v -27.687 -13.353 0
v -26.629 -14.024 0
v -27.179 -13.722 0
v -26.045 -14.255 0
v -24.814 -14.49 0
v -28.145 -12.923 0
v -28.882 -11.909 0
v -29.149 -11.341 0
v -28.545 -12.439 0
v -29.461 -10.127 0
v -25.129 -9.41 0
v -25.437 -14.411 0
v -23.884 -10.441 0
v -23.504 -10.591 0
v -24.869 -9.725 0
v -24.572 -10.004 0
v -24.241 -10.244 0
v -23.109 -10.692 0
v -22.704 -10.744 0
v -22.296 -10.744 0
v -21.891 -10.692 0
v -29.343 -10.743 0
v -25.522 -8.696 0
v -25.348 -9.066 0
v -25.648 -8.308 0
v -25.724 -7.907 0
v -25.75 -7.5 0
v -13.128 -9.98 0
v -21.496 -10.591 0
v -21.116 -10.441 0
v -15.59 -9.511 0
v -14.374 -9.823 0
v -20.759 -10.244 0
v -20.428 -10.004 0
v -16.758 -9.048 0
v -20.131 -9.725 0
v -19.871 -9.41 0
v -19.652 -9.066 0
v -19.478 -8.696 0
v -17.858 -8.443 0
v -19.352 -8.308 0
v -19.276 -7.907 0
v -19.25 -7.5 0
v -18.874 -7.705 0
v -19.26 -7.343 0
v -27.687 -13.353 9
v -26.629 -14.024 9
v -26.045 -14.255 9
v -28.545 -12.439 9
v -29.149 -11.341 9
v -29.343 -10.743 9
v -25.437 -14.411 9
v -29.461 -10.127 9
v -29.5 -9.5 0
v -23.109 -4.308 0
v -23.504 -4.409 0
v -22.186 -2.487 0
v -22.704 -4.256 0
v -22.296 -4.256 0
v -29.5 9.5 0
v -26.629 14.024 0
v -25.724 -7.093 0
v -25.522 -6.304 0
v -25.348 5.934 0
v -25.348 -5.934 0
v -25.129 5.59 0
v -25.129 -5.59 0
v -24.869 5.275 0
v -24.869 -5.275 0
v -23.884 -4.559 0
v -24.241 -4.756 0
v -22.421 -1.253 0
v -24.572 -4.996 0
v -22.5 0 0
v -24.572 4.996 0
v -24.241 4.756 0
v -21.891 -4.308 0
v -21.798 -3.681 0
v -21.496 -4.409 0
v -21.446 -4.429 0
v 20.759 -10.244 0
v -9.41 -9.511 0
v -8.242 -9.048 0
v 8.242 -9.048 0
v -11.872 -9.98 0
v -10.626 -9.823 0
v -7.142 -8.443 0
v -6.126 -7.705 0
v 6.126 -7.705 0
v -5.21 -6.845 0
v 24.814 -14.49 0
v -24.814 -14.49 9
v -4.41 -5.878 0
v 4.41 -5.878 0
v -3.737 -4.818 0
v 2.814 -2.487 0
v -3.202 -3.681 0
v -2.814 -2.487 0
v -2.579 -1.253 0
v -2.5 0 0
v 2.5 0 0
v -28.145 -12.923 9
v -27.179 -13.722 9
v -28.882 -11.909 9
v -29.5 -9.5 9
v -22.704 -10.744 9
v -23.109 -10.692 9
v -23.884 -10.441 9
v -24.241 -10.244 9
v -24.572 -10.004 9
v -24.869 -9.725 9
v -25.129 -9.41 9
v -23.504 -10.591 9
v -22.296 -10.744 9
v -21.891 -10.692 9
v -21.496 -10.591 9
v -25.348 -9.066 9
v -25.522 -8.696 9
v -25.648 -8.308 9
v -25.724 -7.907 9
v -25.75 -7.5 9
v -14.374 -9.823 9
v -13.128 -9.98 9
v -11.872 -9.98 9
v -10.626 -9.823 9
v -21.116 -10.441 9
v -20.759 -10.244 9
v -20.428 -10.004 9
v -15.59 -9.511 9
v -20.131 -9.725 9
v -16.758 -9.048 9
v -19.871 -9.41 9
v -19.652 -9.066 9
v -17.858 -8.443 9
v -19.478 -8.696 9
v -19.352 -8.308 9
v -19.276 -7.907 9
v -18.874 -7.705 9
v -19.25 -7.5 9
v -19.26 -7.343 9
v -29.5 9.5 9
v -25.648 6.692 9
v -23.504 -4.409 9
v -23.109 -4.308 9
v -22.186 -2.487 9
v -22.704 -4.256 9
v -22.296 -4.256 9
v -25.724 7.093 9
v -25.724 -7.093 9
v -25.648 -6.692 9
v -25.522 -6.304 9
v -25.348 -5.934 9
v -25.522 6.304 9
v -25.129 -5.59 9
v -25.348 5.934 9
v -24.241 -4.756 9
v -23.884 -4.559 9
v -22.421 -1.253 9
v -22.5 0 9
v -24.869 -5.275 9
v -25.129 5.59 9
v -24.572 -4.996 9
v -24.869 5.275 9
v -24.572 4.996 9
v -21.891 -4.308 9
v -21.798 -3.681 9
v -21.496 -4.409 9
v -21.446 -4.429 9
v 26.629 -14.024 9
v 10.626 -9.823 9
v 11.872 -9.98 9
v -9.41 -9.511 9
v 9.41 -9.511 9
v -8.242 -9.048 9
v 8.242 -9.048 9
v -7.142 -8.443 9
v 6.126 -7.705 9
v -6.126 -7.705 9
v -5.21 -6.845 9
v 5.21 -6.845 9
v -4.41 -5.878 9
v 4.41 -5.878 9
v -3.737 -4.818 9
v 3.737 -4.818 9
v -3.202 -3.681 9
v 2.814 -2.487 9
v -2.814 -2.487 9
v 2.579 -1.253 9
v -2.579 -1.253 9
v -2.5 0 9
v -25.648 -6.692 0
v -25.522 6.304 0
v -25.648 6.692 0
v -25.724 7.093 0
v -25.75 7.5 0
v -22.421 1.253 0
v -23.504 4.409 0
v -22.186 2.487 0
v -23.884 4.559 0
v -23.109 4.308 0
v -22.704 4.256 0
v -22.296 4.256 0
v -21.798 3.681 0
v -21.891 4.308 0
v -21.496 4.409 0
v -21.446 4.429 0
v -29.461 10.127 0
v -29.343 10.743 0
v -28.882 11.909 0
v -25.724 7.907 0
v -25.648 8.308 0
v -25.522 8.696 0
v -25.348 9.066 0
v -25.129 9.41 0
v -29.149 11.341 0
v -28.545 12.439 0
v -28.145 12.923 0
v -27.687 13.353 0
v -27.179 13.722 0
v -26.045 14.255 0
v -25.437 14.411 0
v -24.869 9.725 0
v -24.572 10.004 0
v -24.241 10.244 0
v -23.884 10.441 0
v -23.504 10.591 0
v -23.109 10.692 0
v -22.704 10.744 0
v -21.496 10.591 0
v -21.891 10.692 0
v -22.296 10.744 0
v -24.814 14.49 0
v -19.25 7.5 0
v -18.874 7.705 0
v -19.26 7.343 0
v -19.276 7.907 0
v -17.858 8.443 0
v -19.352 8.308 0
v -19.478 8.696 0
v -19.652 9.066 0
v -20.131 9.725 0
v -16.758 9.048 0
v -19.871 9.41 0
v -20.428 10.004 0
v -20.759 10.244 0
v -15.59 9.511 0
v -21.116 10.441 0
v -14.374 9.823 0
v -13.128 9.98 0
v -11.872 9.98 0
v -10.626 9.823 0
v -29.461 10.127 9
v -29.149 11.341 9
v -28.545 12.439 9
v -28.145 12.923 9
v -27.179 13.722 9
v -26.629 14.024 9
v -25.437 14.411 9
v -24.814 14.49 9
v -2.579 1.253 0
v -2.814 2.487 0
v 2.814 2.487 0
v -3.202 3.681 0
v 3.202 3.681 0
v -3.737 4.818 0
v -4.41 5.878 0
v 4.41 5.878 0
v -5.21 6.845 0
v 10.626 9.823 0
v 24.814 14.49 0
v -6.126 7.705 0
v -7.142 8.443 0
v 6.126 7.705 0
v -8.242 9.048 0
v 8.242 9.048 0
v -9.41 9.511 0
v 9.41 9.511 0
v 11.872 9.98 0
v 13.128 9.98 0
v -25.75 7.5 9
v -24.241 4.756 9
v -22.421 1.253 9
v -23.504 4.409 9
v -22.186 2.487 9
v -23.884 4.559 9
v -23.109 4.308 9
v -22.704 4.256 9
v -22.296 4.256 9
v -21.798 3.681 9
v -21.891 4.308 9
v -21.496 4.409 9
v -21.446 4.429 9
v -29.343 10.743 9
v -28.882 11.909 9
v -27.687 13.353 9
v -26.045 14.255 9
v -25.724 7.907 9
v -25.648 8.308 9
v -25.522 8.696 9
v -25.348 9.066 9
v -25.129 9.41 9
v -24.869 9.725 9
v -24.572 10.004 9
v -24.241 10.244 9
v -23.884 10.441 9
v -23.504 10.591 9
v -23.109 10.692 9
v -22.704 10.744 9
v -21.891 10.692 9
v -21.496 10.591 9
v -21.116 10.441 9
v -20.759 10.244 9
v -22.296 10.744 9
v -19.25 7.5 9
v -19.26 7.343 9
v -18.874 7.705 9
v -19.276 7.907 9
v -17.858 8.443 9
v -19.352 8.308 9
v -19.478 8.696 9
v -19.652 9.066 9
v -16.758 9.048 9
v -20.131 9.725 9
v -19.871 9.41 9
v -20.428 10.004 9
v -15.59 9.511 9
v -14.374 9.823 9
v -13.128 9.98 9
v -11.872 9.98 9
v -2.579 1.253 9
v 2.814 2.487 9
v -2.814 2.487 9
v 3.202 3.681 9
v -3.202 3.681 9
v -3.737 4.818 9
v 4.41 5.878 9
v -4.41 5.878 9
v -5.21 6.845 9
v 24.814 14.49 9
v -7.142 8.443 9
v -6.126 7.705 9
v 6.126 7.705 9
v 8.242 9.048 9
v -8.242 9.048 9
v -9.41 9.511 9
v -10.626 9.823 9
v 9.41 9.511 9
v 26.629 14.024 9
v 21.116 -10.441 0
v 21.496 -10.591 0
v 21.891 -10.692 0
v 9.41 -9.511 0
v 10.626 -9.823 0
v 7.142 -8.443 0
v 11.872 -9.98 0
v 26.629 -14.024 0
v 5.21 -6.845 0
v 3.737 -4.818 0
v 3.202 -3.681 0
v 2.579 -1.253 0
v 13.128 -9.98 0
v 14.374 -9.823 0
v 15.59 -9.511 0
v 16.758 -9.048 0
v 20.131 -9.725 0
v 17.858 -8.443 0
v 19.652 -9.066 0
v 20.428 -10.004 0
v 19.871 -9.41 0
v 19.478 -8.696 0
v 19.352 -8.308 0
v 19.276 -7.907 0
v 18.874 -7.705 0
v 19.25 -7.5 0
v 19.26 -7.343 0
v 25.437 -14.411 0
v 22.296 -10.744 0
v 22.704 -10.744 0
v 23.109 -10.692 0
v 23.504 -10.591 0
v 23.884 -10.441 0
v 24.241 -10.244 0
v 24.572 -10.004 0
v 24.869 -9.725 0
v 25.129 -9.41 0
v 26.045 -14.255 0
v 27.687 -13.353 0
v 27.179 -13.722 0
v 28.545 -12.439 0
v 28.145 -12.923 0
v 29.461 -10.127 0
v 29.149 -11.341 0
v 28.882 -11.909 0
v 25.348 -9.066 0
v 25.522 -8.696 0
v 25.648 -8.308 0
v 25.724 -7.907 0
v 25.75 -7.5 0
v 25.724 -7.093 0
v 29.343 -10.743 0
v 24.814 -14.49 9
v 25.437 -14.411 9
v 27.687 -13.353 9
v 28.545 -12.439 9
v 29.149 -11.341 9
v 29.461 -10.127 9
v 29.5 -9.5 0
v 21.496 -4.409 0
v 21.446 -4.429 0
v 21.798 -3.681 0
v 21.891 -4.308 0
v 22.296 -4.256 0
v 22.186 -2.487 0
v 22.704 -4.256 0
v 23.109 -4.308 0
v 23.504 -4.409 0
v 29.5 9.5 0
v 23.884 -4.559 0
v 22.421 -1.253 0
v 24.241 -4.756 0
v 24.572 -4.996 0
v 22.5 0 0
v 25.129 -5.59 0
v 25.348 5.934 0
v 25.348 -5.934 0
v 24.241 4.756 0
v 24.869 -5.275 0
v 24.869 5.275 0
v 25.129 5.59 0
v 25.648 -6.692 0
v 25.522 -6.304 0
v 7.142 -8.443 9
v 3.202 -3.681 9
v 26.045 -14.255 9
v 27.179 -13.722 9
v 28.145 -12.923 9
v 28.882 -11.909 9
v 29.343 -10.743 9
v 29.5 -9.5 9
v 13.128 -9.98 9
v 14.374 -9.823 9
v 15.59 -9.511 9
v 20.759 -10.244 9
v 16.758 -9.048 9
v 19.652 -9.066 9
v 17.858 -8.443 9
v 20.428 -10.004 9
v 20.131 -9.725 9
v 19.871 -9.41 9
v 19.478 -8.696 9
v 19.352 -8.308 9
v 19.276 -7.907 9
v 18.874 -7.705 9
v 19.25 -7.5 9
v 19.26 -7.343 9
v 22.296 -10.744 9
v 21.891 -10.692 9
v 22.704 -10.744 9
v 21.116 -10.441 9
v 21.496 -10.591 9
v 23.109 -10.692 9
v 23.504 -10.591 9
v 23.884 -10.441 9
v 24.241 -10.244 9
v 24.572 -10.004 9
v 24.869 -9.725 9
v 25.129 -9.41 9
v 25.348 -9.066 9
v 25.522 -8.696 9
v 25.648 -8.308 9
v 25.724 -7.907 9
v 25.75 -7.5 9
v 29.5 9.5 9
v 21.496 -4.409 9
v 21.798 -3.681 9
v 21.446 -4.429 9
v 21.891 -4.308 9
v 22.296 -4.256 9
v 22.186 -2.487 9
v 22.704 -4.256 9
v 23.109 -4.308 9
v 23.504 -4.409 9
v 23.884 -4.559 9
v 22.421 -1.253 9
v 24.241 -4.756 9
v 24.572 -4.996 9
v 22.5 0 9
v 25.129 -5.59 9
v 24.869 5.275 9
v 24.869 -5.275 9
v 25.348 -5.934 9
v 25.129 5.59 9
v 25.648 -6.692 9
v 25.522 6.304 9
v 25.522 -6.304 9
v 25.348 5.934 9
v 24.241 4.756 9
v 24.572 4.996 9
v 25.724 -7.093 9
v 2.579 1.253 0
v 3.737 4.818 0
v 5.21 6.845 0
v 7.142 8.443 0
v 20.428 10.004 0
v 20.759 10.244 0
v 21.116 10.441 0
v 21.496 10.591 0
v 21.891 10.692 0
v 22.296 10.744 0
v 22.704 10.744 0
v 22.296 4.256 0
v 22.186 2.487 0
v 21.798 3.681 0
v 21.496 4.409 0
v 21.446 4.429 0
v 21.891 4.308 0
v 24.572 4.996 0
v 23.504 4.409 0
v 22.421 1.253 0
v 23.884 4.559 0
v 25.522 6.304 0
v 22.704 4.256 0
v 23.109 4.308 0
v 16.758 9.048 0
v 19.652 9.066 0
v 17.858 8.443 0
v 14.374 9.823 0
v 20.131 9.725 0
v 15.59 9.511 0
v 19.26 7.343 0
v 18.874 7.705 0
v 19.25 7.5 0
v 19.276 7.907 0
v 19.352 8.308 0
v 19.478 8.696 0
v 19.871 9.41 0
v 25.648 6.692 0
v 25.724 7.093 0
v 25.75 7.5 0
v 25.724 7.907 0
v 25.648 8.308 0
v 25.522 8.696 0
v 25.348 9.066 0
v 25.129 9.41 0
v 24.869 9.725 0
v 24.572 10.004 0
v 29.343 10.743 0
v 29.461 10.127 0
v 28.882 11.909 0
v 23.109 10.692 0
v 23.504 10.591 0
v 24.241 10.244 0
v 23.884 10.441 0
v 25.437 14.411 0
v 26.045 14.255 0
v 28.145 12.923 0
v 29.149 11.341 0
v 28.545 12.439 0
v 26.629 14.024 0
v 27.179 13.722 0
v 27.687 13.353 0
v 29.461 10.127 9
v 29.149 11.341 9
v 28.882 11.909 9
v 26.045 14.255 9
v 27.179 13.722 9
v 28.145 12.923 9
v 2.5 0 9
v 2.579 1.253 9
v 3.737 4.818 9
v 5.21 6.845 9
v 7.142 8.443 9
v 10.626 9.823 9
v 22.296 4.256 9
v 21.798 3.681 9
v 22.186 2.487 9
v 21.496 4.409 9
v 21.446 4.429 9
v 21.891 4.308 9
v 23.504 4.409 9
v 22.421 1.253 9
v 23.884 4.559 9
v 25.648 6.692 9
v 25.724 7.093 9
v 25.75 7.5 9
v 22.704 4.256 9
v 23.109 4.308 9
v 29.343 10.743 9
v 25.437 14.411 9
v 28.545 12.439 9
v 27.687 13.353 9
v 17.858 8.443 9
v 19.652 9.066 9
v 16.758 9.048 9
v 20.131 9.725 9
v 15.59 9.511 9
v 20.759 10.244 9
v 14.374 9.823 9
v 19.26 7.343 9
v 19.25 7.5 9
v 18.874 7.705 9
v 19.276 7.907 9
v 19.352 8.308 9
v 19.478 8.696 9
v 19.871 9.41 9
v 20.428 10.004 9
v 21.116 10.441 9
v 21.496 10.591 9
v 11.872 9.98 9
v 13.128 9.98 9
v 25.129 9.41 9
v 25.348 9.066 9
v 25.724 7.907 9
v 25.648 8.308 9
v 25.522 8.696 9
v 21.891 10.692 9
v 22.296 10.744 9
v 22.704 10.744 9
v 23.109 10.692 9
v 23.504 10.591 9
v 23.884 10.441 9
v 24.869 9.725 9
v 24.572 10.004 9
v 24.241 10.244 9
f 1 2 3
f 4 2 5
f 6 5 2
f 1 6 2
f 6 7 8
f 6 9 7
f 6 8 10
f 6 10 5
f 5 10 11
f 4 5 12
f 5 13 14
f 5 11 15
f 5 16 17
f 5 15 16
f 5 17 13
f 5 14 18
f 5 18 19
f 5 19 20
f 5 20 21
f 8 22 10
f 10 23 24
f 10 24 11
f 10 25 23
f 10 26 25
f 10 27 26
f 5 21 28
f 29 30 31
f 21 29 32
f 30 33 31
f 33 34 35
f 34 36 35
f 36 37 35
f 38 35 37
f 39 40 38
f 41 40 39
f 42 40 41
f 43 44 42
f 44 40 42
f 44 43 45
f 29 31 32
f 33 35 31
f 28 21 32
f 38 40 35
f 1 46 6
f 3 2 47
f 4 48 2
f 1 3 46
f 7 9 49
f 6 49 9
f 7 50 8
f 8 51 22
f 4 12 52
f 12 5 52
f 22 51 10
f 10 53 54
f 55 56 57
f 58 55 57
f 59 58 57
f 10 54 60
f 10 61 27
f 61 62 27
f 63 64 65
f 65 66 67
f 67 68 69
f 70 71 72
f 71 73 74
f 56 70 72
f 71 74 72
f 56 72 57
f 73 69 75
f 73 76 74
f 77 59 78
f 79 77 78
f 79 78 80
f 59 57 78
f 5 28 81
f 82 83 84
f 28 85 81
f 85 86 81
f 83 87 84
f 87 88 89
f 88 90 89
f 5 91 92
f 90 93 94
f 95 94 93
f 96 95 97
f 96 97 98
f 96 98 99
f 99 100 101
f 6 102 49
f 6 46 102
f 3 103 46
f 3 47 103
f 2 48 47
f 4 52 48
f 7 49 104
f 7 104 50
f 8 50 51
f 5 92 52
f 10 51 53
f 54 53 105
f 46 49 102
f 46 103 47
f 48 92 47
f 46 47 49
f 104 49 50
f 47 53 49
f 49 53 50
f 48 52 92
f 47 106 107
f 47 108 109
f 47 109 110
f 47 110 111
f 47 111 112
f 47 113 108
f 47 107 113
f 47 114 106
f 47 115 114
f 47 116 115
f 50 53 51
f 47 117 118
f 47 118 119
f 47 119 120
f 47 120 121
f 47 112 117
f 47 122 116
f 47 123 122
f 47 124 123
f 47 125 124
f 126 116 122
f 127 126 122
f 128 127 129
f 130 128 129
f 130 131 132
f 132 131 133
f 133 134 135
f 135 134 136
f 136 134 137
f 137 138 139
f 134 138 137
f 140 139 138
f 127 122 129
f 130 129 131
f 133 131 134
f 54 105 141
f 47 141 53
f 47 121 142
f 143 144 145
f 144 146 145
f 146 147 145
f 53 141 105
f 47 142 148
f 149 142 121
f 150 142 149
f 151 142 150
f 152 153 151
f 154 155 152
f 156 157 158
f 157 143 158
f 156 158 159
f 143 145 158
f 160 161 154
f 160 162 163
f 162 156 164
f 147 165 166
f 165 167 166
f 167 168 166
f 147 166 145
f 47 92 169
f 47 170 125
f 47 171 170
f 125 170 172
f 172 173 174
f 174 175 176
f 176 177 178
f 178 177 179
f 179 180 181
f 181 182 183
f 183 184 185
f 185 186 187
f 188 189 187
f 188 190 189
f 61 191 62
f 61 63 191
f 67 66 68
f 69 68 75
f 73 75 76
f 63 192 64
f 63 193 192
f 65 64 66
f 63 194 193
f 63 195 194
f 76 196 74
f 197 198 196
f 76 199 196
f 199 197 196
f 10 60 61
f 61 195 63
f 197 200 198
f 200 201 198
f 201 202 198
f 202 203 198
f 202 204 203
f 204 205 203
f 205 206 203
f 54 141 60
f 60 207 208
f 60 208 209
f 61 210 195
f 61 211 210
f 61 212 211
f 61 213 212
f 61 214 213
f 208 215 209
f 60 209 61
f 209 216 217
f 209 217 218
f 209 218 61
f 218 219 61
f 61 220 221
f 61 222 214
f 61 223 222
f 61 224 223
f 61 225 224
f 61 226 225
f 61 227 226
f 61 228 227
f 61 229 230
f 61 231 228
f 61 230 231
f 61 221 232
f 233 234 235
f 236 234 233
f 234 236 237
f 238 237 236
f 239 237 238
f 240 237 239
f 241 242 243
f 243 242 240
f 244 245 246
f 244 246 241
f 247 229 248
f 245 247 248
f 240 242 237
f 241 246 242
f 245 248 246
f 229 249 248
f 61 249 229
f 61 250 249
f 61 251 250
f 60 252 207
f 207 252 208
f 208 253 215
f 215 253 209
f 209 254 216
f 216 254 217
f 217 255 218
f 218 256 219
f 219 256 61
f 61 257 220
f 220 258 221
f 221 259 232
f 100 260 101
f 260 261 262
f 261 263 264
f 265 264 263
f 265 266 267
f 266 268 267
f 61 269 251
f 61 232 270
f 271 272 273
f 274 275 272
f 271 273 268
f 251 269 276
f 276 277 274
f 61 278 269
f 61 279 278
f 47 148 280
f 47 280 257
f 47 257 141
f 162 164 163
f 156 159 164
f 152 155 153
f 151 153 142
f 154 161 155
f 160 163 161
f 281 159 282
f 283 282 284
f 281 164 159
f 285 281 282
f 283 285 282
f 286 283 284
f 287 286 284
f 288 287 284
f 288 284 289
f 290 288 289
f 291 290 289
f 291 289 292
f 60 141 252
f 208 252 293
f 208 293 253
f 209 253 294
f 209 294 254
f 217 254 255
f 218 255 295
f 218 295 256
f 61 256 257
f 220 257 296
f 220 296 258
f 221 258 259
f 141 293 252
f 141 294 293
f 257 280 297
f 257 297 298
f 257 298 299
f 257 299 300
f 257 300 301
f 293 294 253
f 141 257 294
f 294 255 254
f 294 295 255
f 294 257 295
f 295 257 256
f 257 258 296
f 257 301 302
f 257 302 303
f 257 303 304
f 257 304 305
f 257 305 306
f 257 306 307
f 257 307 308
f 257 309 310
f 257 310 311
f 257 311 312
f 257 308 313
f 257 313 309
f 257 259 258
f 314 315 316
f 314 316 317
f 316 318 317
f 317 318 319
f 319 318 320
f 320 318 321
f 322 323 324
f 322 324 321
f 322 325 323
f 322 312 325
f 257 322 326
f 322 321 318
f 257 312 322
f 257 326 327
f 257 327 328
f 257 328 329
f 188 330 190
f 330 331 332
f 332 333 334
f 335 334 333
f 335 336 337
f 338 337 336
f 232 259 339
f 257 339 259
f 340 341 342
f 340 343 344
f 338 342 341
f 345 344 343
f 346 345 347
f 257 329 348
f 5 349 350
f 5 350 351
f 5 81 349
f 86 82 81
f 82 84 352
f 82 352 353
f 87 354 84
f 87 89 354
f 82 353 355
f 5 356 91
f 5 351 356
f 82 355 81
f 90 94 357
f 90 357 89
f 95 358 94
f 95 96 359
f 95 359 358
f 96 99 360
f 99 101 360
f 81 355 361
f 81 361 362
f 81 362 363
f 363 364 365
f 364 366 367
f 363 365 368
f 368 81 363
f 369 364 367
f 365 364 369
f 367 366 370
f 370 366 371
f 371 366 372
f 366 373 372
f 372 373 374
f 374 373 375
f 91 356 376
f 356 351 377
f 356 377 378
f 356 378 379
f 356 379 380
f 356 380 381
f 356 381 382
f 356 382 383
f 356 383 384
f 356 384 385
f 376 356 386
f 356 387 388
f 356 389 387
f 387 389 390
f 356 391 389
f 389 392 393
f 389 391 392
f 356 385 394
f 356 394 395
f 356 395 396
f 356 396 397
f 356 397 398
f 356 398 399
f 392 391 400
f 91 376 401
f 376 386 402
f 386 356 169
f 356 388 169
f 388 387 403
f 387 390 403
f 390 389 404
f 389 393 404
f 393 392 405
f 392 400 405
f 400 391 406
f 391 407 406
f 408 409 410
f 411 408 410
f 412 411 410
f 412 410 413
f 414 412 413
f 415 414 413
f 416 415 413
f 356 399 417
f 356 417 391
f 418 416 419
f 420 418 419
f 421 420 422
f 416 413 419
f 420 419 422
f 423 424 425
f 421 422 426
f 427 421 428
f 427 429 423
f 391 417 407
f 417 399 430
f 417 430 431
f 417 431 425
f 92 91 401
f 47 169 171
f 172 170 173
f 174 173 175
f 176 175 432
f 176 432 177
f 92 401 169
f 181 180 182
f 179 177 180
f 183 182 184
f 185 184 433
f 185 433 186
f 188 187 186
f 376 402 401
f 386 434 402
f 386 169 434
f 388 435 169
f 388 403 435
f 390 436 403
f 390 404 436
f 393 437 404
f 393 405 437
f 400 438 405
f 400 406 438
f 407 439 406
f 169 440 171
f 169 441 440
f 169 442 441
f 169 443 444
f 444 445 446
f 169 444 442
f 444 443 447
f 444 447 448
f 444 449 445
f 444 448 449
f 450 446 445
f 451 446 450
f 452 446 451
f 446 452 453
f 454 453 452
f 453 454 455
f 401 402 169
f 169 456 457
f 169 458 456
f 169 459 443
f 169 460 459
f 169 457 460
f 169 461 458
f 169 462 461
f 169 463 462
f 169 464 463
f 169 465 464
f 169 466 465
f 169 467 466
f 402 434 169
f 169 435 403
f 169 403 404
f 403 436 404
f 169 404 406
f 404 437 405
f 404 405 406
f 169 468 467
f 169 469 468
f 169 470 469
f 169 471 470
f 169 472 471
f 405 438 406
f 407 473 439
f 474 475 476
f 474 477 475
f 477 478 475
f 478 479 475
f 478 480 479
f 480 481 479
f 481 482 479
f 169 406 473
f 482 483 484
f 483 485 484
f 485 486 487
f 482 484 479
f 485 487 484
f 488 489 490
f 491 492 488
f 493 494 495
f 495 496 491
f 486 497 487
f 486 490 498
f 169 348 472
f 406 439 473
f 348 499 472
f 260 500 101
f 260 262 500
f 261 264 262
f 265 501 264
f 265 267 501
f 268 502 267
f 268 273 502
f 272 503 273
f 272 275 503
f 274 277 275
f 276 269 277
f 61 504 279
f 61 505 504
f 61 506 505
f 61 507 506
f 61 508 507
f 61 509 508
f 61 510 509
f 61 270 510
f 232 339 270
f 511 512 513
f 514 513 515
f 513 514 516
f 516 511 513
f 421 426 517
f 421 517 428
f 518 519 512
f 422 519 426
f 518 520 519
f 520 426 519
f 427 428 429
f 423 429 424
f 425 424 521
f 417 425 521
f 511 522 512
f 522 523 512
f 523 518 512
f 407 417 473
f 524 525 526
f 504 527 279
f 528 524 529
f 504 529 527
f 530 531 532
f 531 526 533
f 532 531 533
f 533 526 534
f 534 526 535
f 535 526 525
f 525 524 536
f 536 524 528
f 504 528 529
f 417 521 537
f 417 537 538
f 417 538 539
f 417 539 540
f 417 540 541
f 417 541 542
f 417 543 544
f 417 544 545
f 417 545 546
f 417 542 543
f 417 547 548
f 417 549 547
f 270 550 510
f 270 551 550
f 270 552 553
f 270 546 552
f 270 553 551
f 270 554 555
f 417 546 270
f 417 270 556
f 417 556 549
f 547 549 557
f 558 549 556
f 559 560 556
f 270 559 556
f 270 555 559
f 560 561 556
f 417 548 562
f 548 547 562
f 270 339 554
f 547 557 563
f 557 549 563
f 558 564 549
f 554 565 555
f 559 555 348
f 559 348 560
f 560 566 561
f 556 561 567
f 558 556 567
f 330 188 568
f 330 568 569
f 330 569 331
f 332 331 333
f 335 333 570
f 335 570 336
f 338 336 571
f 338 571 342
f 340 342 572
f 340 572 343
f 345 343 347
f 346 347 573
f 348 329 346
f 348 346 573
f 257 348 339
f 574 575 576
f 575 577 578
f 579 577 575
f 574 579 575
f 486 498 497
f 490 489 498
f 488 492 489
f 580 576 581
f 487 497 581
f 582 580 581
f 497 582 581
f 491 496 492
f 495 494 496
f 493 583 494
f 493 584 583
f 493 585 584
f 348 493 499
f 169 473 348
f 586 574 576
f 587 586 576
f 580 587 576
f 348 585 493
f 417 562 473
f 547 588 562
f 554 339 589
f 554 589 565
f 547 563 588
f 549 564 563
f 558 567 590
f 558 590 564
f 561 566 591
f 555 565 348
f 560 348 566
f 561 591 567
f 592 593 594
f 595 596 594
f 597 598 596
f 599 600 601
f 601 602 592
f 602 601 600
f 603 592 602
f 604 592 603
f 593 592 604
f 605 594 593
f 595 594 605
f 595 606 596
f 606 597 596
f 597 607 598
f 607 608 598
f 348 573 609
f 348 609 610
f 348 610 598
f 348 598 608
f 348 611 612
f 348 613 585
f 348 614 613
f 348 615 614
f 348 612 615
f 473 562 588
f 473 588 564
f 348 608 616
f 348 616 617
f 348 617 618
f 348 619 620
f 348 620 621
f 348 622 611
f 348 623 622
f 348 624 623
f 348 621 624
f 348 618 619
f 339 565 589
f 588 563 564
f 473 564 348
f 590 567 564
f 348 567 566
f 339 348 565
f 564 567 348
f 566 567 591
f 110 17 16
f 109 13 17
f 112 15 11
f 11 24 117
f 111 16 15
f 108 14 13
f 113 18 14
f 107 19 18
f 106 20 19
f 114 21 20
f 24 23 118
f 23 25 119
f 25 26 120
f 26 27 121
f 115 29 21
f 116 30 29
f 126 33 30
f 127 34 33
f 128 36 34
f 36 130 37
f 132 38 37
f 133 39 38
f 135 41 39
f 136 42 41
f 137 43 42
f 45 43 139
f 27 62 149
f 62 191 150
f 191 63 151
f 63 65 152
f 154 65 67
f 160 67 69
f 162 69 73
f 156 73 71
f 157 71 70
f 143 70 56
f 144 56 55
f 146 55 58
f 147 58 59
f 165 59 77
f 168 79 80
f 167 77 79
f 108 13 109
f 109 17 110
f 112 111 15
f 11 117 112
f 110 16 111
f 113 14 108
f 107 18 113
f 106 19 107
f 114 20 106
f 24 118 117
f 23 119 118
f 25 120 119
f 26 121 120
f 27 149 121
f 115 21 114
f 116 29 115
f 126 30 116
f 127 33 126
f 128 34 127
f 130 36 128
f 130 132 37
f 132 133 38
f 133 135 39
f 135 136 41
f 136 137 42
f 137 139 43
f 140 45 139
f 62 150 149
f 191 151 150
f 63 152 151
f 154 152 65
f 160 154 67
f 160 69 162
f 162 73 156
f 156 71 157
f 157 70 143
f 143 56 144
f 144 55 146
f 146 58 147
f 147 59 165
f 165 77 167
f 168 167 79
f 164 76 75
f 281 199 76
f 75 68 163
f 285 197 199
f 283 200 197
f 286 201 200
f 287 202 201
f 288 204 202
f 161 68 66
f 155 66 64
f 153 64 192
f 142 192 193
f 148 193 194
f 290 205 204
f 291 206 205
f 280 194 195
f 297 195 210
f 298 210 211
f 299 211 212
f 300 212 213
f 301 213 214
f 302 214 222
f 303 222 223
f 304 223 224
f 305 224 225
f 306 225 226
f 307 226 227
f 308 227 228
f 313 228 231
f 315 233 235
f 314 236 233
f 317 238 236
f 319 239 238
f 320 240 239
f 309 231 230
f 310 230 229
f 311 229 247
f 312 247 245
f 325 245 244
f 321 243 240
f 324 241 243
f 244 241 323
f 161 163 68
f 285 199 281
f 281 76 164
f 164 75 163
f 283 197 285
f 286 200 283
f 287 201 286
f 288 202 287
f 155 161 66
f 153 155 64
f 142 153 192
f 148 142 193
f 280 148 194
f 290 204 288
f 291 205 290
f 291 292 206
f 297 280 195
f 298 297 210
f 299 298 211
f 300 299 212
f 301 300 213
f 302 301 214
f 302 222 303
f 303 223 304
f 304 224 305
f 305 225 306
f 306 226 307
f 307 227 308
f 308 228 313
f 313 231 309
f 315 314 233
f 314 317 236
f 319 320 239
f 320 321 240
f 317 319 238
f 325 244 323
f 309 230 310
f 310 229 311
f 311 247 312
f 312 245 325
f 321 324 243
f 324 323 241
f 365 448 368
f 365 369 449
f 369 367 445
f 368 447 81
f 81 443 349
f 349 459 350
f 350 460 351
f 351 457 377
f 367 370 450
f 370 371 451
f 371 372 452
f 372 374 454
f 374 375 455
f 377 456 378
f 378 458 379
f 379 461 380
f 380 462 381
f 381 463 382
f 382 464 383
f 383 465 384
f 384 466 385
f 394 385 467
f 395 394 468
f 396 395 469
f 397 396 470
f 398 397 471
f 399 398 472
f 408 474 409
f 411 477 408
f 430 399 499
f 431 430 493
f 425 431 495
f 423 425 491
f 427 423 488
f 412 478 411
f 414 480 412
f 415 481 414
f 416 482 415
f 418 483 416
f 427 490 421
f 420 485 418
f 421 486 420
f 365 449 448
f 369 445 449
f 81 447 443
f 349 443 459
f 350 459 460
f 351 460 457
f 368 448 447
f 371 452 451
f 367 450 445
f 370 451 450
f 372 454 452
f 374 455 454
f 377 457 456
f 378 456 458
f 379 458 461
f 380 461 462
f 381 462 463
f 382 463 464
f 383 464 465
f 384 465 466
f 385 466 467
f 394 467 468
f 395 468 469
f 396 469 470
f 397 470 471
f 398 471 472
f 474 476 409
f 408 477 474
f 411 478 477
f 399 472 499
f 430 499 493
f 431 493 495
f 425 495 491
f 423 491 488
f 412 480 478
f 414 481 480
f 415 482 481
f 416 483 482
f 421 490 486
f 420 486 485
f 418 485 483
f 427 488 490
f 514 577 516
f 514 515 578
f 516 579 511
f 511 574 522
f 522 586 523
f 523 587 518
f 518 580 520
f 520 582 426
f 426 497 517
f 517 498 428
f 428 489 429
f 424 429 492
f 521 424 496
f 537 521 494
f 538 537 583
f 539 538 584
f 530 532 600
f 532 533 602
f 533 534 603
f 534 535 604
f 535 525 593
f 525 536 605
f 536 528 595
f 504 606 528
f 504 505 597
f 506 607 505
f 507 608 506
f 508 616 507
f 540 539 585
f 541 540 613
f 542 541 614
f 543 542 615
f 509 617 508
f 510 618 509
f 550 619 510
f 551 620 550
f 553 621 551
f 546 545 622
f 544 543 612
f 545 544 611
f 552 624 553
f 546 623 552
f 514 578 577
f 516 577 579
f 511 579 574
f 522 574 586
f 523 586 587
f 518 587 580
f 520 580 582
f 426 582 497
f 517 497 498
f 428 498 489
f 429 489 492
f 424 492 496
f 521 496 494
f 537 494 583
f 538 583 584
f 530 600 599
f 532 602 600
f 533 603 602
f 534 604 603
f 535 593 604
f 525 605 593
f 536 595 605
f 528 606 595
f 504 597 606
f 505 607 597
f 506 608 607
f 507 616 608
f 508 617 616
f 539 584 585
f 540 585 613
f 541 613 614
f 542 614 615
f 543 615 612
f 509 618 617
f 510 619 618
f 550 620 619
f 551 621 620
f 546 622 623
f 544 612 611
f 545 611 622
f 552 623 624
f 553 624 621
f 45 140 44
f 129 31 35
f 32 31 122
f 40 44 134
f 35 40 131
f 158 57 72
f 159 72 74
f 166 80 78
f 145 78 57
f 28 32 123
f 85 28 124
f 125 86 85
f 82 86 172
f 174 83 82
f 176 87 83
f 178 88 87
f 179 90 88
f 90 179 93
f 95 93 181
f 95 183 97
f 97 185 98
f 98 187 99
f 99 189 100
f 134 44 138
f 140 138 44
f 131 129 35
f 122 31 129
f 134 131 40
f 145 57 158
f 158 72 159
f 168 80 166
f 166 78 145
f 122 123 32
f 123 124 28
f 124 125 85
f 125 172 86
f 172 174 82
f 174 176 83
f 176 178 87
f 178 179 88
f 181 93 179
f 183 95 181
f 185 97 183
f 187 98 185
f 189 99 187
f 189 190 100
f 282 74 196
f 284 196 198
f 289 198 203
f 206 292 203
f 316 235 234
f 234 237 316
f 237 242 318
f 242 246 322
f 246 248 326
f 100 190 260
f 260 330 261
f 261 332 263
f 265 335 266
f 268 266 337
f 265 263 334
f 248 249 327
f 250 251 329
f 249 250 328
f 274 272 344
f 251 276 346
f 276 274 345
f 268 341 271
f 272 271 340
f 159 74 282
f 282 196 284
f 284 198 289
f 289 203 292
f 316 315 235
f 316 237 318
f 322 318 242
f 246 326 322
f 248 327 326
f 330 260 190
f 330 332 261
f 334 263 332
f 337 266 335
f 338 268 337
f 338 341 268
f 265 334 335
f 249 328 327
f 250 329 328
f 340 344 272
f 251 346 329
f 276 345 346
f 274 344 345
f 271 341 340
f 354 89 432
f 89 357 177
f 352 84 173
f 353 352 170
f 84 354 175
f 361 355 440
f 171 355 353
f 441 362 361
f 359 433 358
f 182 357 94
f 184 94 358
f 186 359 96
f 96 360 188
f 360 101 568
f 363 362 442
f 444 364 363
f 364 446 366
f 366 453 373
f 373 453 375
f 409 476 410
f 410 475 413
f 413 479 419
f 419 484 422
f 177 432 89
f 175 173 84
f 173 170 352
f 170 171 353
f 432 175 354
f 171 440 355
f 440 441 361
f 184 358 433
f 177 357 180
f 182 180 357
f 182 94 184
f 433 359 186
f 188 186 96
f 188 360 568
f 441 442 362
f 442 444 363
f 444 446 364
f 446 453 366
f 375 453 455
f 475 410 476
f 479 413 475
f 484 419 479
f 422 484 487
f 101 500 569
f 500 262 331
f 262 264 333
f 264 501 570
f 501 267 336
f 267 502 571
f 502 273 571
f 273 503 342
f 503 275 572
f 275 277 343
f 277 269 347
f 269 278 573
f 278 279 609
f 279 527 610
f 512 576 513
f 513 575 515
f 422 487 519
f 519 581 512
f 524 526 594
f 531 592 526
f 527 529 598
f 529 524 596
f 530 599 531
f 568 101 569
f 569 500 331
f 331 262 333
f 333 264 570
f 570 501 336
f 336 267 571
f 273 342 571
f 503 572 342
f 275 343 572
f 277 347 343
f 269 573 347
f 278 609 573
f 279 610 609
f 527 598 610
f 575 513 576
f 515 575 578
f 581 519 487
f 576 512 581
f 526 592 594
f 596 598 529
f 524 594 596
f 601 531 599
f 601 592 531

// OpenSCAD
$fn = 50;

difference() {
	union() {
		hull() {
			translate(v = [-24.5, 9.5, 0]) {
				cylinder(h = 9, r = 5);
			}
			translate(v = [24.5, 9.5, 0]) {
				cylinder(h = 9, r = 5);
			}
			translate(v = [-24.5, -9.5, 0]) {
				cylinder(h = 9, r = 5);
			}
			translate(v = [24.5, -9.5, 0]) {
				cylinder(h = 9, r = 5);
			}
		}
	}
	union() {
		translate(v = [-22.5, -7.5, -100.0]) {
			cylinder(h = 200, r = 3.25);
		}
		translate(v = [-22.5, 7.5, -100.0]) {
			cylinder(h = 200, r = 3.25);
		}
		translate(v = [22.5, -7.5, -100.0]) {
			cylinder(h = 200, r = 3.25);
		}
		translate(v = [22.5, 7.5, -100.0]) {
			cylinder(h = 200, r = 3.25);
		}
		translate(v = [-22.5, -7.5, -100.0]) {
			cylinder(h = 200, r = 1.8);
		}
		translate(v = [-22.5, 7.5, -100.0]) {
			cylinder(h = 200, r = 1.8);
		}
		translate(v = [22.5, -7.5, -100.0]) {
			cylinder(h = 200, r = 1.8);
		}
		translate(v = [22.5, 7.5, -100.0]) {
			cylinder(h = 200, r = 1.8);
		}
		translate(v = [-12.5, 0, 0.0]) {
			cylinder(h = 9, r = 10.0);
		}
		translate(v = [12.5, 0, 0.0]) {
			cylinder(h = 9, r = 10.0);
		}
	}
}
